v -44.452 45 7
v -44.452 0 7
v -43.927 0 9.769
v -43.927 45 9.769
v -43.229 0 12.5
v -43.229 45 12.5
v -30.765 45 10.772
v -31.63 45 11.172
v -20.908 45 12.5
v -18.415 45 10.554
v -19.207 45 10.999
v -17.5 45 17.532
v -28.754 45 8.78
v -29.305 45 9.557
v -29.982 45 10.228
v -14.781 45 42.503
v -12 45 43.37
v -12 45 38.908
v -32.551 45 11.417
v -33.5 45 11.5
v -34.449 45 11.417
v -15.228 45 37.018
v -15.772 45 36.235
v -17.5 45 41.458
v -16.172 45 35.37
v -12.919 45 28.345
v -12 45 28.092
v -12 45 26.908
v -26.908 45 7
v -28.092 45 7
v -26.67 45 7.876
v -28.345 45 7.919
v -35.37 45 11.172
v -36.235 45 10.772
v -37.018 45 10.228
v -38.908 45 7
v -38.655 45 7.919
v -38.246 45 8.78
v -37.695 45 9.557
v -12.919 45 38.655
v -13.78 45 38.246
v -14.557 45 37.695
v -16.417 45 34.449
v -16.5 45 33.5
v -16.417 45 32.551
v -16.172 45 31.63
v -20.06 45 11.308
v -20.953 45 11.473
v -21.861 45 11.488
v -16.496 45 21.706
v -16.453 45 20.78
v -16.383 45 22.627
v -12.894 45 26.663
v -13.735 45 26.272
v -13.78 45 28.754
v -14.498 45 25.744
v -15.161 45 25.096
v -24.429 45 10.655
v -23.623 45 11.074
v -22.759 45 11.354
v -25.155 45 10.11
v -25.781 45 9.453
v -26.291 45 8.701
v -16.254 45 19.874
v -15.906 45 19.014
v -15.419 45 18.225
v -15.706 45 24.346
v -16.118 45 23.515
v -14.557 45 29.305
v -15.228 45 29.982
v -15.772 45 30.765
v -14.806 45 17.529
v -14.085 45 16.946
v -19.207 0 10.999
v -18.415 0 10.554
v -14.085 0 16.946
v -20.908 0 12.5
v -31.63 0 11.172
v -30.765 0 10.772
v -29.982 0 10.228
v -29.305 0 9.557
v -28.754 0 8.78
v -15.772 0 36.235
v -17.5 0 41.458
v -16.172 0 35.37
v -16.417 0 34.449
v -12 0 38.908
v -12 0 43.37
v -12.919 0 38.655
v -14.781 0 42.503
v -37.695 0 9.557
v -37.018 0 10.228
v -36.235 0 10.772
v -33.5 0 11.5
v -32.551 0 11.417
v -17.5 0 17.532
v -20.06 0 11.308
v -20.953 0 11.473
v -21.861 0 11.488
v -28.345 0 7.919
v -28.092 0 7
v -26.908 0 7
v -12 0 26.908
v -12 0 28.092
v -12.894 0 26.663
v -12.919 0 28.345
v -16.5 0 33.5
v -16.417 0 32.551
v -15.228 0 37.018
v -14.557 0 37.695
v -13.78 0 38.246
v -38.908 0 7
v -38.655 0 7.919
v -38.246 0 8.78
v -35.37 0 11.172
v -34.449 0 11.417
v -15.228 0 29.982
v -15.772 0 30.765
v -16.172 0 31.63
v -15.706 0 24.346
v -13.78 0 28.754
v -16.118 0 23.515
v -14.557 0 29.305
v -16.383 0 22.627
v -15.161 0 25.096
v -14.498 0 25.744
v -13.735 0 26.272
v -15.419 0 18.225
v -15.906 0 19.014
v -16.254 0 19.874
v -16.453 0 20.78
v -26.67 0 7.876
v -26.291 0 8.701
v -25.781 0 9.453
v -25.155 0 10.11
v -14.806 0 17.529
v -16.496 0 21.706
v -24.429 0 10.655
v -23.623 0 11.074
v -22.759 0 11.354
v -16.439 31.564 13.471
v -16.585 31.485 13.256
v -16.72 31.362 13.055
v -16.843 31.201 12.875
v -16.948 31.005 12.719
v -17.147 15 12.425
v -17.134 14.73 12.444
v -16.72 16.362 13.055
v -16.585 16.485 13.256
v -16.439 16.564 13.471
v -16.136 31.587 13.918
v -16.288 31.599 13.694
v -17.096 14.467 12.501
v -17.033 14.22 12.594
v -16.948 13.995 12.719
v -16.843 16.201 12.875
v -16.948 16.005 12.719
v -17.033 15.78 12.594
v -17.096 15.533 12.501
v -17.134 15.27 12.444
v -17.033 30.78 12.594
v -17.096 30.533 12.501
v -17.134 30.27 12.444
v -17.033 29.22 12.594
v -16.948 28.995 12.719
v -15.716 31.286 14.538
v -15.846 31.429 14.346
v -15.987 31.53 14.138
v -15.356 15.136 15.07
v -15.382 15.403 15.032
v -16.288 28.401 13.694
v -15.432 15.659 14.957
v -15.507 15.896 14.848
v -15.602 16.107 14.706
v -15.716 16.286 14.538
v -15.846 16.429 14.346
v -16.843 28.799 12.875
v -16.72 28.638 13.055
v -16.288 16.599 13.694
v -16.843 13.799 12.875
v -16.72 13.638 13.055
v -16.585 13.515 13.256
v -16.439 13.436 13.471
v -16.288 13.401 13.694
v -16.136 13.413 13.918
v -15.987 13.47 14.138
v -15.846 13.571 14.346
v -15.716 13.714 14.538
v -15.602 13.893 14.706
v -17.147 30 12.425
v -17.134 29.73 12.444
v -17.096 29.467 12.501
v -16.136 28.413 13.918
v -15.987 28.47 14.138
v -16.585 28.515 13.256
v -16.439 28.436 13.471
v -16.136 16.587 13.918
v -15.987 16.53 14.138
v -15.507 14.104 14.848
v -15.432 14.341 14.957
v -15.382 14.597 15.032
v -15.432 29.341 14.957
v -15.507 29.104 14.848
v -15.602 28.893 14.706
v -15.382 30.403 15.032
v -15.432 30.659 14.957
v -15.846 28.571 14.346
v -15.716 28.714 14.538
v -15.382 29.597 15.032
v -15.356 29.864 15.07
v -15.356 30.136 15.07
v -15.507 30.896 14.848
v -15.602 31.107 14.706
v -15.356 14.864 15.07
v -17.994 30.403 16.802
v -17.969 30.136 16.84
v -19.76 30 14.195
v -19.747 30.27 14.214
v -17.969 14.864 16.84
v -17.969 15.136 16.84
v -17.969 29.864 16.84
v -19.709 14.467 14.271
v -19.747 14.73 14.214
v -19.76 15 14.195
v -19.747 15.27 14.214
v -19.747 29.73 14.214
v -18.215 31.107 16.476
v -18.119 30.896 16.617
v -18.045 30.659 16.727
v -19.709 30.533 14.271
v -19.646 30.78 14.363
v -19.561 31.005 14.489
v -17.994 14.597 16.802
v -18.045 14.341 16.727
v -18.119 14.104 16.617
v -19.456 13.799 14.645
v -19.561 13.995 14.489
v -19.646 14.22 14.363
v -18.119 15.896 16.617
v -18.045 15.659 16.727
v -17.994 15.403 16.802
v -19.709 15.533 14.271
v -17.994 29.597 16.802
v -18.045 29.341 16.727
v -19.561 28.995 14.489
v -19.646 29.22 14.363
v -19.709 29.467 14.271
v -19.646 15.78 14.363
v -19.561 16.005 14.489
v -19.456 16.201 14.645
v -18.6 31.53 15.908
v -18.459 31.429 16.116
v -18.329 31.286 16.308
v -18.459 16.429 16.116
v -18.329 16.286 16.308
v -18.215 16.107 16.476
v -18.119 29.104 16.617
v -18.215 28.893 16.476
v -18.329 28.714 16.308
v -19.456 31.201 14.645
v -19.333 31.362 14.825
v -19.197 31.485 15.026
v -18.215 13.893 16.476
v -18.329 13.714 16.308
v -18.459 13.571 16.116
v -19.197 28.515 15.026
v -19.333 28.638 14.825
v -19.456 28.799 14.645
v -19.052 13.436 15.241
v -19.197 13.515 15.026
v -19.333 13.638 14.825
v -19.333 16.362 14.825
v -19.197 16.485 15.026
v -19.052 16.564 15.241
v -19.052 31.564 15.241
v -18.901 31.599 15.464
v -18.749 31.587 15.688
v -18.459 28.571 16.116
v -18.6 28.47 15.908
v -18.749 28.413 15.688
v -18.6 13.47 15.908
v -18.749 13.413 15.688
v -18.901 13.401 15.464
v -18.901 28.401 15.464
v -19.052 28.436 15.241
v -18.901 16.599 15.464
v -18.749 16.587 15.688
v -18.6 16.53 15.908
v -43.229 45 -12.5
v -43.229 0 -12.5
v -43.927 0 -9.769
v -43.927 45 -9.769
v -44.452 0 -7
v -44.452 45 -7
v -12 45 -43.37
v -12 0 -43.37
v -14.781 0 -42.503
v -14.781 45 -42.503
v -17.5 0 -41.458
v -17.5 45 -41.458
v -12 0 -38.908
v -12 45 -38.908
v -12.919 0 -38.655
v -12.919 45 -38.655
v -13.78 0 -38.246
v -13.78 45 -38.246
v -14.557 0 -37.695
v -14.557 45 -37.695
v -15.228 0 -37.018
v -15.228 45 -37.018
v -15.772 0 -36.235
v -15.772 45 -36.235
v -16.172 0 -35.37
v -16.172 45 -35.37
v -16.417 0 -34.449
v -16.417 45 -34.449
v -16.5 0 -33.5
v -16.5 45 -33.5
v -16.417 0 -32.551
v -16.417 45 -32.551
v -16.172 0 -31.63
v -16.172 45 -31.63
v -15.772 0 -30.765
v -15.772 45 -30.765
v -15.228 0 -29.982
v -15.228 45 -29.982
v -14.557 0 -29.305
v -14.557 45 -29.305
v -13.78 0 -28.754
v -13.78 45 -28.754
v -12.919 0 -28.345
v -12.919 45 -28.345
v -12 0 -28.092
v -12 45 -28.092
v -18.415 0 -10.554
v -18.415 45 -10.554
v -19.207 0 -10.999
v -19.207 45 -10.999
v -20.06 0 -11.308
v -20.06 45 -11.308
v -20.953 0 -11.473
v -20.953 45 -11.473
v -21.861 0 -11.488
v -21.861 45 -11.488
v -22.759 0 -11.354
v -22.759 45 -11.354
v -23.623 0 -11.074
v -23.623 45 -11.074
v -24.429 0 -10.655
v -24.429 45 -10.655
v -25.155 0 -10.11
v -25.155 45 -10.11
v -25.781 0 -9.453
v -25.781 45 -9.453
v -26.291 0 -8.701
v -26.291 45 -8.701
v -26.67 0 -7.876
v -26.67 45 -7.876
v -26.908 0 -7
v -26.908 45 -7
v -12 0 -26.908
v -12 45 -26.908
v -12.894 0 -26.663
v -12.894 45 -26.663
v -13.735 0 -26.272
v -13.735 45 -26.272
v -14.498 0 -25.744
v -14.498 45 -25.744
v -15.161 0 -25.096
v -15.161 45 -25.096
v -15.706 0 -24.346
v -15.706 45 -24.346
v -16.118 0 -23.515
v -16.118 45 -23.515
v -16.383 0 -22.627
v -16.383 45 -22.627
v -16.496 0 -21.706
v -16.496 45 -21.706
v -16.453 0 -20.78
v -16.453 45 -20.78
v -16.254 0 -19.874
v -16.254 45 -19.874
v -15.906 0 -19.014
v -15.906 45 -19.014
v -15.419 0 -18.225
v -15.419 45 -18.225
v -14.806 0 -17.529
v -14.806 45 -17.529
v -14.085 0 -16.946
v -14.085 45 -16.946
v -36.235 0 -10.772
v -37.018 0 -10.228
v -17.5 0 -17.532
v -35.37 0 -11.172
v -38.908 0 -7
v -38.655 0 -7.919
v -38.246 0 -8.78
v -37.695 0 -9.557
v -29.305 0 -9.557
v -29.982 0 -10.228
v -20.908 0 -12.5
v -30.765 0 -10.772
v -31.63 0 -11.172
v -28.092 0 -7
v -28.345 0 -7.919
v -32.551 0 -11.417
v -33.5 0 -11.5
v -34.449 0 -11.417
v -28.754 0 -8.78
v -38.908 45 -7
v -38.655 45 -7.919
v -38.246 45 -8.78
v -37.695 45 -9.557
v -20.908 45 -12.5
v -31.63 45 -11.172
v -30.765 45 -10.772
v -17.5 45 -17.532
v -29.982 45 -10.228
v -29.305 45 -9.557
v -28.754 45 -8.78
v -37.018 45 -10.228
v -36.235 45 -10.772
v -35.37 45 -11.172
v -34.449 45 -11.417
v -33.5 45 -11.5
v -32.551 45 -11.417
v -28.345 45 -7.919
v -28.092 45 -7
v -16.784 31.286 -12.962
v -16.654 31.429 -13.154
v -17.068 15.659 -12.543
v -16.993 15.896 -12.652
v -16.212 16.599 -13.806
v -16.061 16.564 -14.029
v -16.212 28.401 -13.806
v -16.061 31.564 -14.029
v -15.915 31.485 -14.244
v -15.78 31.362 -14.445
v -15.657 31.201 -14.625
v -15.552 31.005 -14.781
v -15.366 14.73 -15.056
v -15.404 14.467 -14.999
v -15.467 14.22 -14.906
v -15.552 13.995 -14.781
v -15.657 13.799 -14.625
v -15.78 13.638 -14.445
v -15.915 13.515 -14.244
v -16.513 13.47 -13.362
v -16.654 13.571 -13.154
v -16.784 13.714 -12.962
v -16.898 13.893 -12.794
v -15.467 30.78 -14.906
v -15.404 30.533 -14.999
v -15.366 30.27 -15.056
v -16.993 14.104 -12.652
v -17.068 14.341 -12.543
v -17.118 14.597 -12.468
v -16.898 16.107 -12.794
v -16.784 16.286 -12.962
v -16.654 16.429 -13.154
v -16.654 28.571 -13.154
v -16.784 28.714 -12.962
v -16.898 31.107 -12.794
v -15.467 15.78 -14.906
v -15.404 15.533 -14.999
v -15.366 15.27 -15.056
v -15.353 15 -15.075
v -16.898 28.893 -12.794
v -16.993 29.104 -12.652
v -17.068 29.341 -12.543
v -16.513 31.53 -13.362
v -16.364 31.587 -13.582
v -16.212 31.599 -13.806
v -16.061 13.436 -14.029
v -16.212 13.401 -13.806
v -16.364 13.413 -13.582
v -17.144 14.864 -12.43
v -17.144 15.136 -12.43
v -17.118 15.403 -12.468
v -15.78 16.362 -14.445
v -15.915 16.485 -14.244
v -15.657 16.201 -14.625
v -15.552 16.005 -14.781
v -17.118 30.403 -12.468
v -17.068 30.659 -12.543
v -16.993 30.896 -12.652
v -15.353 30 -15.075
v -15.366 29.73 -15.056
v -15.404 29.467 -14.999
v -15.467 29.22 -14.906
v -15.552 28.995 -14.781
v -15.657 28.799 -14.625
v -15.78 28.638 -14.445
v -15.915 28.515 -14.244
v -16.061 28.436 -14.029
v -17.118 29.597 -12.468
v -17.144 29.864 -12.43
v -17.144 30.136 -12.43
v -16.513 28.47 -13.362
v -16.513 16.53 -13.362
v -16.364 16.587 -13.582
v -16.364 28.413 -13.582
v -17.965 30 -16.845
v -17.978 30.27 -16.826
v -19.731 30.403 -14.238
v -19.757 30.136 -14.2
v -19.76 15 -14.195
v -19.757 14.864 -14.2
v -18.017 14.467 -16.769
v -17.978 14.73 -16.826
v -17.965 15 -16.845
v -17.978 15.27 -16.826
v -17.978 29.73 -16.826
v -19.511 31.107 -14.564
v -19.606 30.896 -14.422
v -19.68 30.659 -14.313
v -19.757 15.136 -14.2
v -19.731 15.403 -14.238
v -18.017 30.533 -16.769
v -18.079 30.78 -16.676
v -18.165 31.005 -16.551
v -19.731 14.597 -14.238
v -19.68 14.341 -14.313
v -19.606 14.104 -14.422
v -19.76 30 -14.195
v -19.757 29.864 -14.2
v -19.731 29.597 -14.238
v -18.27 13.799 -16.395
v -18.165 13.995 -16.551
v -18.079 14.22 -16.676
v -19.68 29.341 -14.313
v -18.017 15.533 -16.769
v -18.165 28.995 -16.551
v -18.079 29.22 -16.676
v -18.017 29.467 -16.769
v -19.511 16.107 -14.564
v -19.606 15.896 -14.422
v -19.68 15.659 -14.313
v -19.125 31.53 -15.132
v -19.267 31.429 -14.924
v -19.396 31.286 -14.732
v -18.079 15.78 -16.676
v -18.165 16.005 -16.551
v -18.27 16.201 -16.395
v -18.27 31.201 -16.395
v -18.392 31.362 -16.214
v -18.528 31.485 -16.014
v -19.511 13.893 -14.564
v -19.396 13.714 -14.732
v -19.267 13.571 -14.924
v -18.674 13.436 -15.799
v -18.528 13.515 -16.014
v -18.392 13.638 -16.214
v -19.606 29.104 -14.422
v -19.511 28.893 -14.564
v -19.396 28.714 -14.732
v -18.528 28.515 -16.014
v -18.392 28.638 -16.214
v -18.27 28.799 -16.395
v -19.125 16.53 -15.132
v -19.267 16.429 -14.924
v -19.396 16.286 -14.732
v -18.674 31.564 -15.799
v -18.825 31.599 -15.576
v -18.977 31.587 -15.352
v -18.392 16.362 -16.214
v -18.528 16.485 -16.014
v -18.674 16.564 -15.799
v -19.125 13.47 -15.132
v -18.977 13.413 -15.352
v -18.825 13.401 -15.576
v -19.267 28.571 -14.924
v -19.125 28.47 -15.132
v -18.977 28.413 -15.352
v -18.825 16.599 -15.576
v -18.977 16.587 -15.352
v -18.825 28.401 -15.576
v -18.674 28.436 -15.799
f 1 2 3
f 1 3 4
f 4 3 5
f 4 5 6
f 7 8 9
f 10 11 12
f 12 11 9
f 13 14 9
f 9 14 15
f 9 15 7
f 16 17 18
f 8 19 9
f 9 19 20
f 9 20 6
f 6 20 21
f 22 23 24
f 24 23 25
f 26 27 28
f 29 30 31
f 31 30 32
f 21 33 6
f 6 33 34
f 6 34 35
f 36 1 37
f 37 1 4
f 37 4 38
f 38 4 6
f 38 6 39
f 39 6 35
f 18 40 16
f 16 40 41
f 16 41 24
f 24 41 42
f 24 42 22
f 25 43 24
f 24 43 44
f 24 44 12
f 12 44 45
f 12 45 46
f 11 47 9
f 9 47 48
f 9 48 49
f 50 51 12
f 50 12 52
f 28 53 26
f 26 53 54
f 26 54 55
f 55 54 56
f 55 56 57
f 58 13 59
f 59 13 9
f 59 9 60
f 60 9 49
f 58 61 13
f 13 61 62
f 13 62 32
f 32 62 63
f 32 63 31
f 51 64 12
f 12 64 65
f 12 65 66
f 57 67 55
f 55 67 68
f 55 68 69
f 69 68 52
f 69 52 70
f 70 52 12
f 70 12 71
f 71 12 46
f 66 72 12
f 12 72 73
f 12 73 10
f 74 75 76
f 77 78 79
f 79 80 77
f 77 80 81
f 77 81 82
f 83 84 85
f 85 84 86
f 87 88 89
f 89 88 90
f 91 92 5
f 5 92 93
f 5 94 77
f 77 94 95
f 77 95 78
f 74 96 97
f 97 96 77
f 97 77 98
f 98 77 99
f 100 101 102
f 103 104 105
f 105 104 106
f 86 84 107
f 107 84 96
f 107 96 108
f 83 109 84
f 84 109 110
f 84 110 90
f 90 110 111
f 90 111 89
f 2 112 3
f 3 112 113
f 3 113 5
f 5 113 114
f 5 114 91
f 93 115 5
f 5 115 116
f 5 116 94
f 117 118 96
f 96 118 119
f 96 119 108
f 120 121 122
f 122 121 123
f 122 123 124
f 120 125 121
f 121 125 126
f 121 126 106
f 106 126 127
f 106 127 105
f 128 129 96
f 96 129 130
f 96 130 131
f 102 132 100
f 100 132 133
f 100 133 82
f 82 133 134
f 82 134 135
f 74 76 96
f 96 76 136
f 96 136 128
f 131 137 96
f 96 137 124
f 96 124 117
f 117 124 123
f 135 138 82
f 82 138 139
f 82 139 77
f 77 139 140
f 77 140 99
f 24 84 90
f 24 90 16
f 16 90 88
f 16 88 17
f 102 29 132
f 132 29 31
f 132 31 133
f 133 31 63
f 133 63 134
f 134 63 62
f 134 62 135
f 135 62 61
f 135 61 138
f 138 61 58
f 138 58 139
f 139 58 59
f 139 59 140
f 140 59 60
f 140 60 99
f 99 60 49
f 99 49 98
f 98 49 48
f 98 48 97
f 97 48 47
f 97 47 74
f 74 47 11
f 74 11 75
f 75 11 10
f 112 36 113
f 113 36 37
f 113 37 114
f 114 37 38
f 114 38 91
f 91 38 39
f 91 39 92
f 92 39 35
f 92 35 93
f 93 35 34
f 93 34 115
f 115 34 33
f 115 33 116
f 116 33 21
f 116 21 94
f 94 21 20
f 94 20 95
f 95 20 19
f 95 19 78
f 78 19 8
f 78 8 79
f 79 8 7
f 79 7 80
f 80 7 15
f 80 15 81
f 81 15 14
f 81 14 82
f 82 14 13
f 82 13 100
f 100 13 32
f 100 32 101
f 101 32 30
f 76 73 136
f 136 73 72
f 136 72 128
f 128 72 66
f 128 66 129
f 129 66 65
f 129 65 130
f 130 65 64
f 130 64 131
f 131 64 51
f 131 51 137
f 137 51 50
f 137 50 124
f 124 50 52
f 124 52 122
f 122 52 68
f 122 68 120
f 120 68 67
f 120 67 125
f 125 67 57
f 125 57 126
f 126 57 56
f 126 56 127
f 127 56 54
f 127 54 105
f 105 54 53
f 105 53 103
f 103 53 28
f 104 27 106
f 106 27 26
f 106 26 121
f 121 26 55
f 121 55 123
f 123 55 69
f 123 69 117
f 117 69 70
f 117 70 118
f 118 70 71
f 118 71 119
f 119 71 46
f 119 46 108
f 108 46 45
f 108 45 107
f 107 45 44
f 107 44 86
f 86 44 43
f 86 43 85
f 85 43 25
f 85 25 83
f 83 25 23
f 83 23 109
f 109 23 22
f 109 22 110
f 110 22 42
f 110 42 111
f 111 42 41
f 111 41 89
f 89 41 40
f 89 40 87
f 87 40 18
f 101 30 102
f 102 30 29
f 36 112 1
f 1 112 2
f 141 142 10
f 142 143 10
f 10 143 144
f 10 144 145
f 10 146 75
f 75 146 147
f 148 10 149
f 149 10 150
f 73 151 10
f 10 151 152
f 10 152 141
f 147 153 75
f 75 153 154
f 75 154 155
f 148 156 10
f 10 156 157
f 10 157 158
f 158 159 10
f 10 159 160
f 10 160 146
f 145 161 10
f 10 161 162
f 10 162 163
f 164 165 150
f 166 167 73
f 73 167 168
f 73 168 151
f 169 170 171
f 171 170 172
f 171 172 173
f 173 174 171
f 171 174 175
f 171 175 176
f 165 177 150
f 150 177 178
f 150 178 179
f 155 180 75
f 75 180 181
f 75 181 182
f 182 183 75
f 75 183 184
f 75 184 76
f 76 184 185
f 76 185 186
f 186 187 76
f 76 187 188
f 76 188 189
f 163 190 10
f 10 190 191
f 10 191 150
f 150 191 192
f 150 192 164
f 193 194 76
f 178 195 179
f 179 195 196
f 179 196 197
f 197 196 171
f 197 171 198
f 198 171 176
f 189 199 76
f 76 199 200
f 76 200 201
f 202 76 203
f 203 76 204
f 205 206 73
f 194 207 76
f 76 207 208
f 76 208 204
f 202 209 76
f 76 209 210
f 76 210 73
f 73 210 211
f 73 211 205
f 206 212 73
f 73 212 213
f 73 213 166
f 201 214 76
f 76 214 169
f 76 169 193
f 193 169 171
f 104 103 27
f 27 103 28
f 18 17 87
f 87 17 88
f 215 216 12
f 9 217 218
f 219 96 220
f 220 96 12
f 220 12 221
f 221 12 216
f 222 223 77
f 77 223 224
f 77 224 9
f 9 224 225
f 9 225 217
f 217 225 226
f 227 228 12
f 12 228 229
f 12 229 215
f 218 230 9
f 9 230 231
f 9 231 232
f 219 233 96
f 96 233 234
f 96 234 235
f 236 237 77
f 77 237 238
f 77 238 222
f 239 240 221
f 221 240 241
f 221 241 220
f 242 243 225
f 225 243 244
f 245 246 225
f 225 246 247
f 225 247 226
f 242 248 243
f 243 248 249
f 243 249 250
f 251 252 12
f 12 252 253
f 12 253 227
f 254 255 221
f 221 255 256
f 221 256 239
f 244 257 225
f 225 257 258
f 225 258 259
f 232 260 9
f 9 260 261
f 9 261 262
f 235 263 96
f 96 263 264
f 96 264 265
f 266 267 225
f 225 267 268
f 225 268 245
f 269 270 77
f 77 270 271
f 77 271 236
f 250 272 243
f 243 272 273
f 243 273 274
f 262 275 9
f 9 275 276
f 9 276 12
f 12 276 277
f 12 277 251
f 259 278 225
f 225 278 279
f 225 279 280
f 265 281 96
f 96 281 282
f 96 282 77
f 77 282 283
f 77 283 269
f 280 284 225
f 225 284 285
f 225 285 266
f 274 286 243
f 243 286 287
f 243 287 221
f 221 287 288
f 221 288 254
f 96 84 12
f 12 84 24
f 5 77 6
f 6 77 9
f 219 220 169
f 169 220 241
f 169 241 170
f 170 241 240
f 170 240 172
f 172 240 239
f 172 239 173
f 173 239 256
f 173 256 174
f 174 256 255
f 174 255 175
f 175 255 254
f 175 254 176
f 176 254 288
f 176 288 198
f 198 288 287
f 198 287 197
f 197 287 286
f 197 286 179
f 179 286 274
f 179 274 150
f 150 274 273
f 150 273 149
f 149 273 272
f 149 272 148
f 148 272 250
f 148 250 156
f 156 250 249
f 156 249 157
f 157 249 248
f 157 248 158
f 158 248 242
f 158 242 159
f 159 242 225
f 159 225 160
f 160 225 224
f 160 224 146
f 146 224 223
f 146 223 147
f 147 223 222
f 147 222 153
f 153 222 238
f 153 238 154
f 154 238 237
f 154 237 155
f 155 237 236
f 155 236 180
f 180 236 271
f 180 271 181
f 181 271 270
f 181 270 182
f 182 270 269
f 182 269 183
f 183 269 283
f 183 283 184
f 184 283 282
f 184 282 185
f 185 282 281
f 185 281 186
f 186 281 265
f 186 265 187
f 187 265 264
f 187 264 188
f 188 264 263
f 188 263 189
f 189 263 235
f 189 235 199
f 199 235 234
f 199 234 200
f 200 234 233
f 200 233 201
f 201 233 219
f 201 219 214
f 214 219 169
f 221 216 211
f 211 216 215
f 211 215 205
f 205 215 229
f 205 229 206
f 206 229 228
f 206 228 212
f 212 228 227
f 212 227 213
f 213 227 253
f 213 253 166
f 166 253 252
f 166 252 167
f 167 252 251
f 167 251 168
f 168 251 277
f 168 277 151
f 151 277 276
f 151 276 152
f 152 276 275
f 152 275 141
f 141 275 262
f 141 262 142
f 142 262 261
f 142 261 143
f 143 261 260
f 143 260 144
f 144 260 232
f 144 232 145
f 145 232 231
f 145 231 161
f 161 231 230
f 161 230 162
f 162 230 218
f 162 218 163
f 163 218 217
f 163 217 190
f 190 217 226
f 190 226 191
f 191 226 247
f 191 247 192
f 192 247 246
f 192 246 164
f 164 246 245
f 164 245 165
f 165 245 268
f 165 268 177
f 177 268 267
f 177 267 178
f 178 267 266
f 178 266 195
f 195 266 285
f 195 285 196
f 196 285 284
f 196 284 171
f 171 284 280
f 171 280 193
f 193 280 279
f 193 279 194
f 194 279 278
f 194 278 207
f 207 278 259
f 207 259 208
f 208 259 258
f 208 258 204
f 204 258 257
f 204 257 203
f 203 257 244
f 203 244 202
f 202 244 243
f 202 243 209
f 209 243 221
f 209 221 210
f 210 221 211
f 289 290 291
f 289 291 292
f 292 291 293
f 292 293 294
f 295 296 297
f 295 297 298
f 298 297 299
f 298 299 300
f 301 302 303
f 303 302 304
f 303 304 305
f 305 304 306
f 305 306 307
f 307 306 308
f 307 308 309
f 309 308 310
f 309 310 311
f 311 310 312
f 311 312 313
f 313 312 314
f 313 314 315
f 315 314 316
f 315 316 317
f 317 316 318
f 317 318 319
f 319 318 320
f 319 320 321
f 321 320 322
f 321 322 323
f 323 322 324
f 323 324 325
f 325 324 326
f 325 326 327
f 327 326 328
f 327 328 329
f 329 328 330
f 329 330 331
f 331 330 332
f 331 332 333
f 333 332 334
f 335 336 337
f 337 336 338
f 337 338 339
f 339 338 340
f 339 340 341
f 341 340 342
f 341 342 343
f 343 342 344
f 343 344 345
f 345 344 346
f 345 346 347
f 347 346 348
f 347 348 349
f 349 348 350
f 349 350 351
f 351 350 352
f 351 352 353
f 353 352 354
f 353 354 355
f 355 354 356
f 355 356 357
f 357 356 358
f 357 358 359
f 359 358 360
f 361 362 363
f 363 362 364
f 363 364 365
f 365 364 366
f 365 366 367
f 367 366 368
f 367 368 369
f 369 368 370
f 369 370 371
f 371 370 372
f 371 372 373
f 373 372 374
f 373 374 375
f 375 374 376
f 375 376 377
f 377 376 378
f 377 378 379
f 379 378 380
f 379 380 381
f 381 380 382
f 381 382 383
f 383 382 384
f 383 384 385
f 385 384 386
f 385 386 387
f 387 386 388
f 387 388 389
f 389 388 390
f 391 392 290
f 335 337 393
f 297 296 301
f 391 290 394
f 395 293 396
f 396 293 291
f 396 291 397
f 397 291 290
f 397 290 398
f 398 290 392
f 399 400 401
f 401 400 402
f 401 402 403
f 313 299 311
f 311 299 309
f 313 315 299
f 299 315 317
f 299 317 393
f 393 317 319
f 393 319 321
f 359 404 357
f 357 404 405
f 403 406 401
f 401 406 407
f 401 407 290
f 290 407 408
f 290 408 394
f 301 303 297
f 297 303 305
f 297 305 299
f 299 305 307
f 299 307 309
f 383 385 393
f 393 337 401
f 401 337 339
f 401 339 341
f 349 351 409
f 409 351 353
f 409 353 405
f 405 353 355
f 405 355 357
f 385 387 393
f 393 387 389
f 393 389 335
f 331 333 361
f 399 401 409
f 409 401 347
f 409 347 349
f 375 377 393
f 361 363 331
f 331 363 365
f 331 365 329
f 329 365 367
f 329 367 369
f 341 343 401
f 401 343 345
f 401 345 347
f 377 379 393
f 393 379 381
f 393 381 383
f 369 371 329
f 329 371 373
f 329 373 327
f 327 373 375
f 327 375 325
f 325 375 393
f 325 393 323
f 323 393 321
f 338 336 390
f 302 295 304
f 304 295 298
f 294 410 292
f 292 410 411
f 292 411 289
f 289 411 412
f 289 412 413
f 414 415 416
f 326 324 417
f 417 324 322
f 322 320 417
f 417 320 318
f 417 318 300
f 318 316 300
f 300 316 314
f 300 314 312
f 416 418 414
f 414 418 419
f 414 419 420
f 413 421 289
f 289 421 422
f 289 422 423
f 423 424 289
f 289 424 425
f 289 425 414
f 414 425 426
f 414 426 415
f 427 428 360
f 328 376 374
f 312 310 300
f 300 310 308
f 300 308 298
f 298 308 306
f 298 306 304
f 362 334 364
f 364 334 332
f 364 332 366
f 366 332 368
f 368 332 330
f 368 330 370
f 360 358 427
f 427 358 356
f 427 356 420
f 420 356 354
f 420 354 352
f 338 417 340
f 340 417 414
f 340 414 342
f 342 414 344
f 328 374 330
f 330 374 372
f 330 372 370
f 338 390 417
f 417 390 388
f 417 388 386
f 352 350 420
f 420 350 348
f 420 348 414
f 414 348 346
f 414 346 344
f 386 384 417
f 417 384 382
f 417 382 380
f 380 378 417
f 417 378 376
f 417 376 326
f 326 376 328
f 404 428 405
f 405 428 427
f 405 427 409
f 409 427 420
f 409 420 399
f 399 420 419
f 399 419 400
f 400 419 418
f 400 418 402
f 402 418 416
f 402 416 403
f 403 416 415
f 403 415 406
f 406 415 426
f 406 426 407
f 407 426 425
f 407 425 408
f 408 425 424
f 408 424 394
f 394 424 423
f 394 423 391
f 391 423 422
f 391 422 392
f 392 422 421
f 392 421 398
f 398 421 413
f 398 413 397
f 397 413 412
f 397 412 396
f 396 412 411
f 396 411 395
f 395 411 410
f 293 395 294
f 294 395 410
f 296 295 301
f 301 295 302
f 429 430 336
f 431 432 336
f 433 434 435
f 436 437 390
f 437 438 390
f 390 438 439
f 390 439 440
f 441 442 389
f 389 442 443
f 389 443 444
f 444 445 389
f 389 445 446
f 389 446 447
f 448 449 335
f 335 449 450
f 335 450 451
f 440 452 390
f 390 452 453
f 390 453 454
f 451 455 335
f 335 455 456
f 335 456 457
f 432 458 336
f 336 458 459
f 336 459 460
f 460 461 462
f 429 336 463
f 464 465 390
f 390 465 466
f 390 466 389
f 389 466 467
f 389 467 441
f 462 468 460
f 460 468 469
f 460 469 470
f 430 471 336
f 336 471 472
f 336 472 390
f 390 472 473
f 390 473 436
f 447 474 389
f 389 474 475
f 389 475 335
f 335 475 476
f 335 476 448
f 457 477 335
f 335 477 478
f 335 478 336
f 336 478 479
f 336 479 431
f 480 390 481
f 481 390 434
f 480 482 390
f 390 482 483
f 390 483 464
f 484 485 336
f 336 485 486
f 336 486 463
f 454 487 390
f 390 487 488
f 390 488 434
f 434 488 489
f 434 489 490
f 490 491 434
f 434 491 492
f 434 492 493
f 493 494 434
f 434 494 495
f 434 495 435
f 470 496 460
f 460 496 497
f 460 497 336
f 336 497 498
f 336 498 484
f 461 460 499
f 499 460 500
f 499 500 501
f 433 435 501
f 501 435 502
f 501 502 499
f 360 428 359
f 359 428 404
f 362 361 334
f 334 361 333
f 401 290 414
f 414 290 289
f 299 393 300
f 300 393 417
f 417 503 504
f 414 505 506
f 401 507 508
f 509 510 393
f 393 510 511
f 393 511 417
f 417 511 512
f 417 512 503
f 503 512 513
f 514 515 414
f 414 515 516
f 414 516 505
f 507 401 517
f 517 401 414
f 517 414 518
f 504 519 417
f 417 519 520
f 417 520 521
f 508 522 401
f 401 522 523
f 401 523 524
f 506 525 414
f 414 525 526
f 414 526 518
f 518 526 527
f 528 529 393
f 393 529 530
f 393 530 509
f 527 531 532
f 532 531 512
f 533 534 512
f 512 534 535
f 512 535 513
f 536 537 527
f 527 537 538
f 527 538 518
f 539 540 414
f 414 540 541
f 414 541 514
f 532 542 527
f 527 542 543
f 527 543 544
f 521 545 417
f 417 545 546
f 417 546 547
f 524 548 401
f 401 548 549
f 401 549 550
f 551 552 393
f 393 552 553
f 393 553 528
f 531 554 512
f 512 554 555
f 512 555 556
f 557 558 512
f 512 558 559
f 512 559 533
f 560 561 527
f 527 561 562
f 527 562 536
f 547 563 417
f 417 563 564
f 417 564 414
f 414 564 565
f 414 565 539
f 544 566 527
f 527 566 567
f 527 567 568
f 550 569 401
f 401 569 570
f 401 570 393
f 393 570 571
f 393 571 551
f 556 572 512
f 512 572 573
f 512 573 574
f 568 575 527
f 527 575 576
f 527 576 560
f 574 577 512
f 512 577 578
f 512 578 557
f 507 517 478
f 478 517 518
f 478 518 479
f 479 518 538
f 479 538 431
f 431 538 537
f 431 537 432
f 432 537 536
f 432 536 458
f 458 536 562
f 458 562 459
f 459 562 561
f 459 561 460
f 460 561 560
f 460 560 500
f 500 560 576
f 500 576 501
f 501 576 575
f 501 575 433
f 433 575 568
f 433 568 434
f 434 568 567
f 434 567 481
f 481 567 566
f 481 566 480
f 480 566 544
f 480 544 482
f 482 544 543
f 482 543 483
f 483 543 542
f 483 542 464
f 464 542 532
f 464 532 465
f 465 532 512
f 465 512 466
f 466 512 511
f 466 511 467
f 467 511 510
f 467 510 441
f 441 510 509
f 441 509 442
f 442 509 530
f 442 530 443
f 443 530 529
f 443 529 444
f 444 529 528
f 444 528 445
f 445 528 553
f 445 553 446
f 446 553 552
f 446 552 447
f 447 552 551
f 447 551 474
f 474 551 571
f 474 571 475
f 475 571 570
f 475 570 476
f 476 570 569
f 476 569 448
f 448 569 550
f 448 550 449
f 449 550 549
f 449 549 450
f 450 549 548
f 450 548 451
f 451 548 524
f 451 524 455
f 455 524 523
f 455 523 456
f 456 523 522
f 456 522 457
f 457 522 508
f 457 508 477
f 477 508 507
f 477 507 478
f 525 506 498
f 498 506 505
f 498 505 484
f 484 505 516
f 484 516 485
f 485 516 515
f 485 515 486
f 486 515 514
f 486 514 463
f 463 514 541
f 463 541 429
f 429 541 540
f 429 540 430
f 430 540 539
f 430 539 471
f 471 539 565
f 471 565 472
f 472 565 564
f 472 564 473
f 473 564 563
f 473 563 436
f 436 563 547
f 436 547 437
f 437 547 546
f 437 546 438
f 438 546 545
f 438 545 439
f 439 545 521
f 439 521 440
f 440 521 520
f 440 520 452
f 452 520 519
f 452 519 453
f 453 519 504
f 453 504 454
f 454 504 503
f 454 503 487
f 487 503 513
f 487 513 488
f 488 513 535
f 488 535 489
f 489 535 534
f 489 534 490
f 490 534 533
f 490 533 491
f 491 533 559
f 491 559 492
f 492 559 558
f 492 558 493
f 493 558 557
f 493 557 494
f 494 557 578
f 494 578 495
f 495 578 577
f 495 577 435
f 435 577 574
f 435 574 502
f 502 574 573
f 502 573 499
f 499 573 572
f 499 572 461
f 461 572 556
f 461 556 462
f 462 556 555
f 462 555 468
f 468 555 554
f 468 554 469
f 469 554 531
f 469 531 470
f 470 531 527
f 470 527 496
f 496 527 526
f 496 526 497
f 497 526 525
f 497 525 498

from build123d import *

# Parameters (mm, degrees)
BOSS_EXTRUDE2_DEPTH = 45
SKETCH2_R           = 5.5
CUT_EXTRUDE1_DEPTH  = 45
SKETCH3_W           = 11
SKETCH3_H           = 6
CUT_EXTRUDE2_DEPTH  = 45
SKETCH4_W           = 1
SKETCH4_H           = 1
CUT_EXTRUDE3_DEPTH  = 45
CUT_EXTRUDE4_DEPTH  = 45
SKETCH8_R           = 1.6
CUT_EXTRUDE5_DEPTH  = 45
SKETCH9_R           = 1.6
CUT_EXTRUDE6_DEPTH  = 45


with BuildPart() as part:
    # Sketch1 → Boss-Extrude2 (new body)
    with BuildSketch(Plane(origin=(0, 0, 0), x_dir=(1, 0, 0), z_dir=(0, 1, 0))):
        with BuildLine():
            Line((0, -45), (0, 45))
            ThreePointArc((0, 45), (-45, 0), (0, -45))
        make_face()
    extrude(amount=BOSS_EXTRUDE2_DEPTH)

    # Sketch2 → Cut-Extrude1 (cut)
    with BuildSketch(Plane(origin=(0, 45, 0), x_dir=(1, 0, 0), z_dir=(0, 1, 0))):
        with Locations(Location((-11, -21.5, 0), (0, 0, 270))):
            Circle(SKETCH2_R)
        with Locations(Location((-11, -33.5, 0), (0, 0, 270))):
            Circle(SKETCH2_R)
        with Locations(Location((-21.5, -6, 0), (0, 0, 270))):
            Circle(SKETCH2_R)
        with Locations(Location((-33.5, -6, 0), (0, 0, 270))):
            Circle(SKETCH2_R)
        with Locations(Location((-11, 33.5, 0), (0, 0, 270))):
            Circle(SKETCH2_R)
        with Locations(Location((-11, 21.5, 0), (0, 0, 270))):
            Circle(SKETCH2_R)
        with Locations(Location((-21.5, 6, 0), (0, 0, 270))):
            Circle(SKETCH2_R)
        with Locations(Location((-33.5, 6, 0), (0, 0, 270))):
            Circle(SKETCH2_R)
    extrude(amount=-CUT_EXTRUDE1_DEPTH, mode=Mode.SUBTRACT)

    # Sketch3 → Cut-Extrude2 (cut)
    with BuildSketch(Plane(origin=(0, 45, 0), x_dir=(1, 0, 0), z_dir=(0, 1, 0))):
        with BuildLine():
            Line((-11, 6), (0, 6))
            Line((0, 6), (0, 45))
            ThreePointArc((0, 45), (-5.54219358, 44.657408012), (-11, 43.634848459))
            Line((-11, 43.634848459), (-11, 39))
            ThreePointArc((-11, 39), (-7.110912703, 37.389087297), (-5.5, 33.5))
            ThreePointArc((-5.5, 33.5), (-7.110912703, 29.610912703), (-11, 28))
            Line((-11, 28), (-11, 27))
            ThreePointArc((-11, 27), (-7.110912703, 25.389087297), (-5.5, 21.5))
            ThreePointArc((-5.5, 21.5), (-7.110912703, 17.610912703), (-11, 16))
            Line((-11, 16), (-11, 6))
        make_face()
        with BuildLine():
            Line((0, -45), (0, -6))
            Line((0, -6), (-11, -6))
            Line((-11, -6), (-11, -16))
            ThreePointArc((-11, -16), (-7.110912703, -17.610912703), (-5.5, -21.5))
            ThreePointArc((-5.5, -21.5), (-7.110912703, -25.389087297), (-11, -27))
            Line((-11, -27), (-11, -28))
            ThreePointArc((-11, -28), (-7.110912703, -29.610912703), (-5.5, -33.5))
            ThreePointArc((-5.5, -33.5), (-7.110912703, -37.389087297), (-11, -39))
            Line((-11, -39), (-11, -43.634848459))
            ThreePointArc((-11, -43.634848459), (-5.54219358, -44.657408012), (0, -45))
        make_face()
        with BuildLine():
            Line((-11, -6), (-11, 0))
            Line((-11, 0), (-45, 0))
            ThreePointArc((-45, 0), (-44.8994392, -3.006719068), (-44.598206242, -6))
            Line((-44.598206242, -6), (-39, -6))
            ThreePointArc((-39, -6), (-33.5, -0.5), (-28, -6))
            Line((-28, -6), (-27, -6))
            ThreePointArc((-27, -6), (-21.5, -0.5), (-16, -6))
            Line((-16, -6), (-11, -6))
        make_face()
        with BuildLine():
            Line((-45, 0), (-11, 0))
            Line((-11, 0), (-11, 6))
            Line((-11, 6), (-16, 6))
            ThreePointArc((-16, 6), (-21.5, 0.5), (-27, 6))
            Line((-27, 6), (-28, 6))
            ThreePointArc((-28, 6), (-33.5, 0.5), (-39, 6))
            Line((-39, 6), (-44.598206242, 6))
            ThreePointArc((-44.598206242, 6), (-44.8994392, 3.006719068), (-45, 0))
        make_face()
        with Locations((-5.5, 3)):
            Rectangle(SKETCH3_W, SKETCH3_H)
        with Locations((-5.5, -3)):
            Rectangle(SKETCH3_W, SKETCH3_H)
    extrude(amount=-CUT_EXTRUDE2_DEPTH, mode=Mode.SUBTRACT)


with BuildPart() as cut_extrude2_piece_1:
    # of the separate pieces the step leaves, piece 1, a body of its own (cut_extrude2_pieces)
    add(part.part.solids().sort_by_distance((-44.598206242, 0, 6))[0])


with BuildPart() as cut_extrude2_piece_2:
    # of the separate pieces the step leaves, piece 2, a body of its own (cut_extrude2_pieces)
    add(part.part.solids().sort_by_distance((-11, 0, -43.634848459))[0])


with BuildPart() as cut_extrude3_tool:
    # Sketch4 → Cut-Extrude3 (new body)
    with BuildSketch(Plane(origin=(0, 45, 0), x_dir=(1, 0, 0), z_dir=(0, 1, 0))):
        Polygon((-48.017715624, 6), (-21.5, 6), (-20.822580645, 7), (-48.017715624, 7), align=None)
        Polygon((-20.822580645, 7), (-21.5, 6), (-12, 6), (-12, 7), align=None)
        Polygon((-12, 20.023809524), (-20.822580645, 7), (-12, 7), align=None)
        with Locations((-11.5, 6.5)):
            Rectangle(SKETCH4_W, SKETCH4_H)
        Polygon((-12, 46.611751928), (-12, 20.023809524), (-11, 21.5), (-11, 46.611751928), align=None)
        Polygon((-11, 21.5), (-12, 20.023809524), (-12, 7), (-11, 7), align=None)
        Polygon((-12, -46.611751928), (-11, -46.611751928), (-11, -21.5), (-12, -20.023809524), align=None)
        Polygon((-12, -20.023809524), (-11, -21.5), (-11, -7), (-12, -7), align=None)
        Polygon((-20.822580645, -7), (-12, -20.023809524), (-12, -7), align=None)
        with Locations((-11.5, -6.5)):
            Rectangle(SKETCH4_W, SKETCH4_H)
        Polygon((-20.822580645, -7), (-12, -7), (-12, -6), (-21.5, -6), align=None)
        Polygon((-48.017715624, -7), (-20.822580645, -7), (-21.5, -6), (-48.017715624, -6), align=None)
    extrude(amount=-CUT_EXTRUDE3_DEPTH)


with BuildPart() as cut_extrude2_piece_1_1:
    add(cut_extrude2_piece_1.part)

    # Cut-Extrude3: cut by cut_extrude3_tool
    add(cut_extrude3_tool.part, mode=Mode.SUBTRACT)


with BuildPart() as cut_extrude2_piece_2_1:
    add(cut_extrude2_piece_2.part)

    # Cut-Extrude3: cut by cut_extrude3_tool
    add(cut_extrude3_tool.part, mode=Mode.SUBTRACT)


with BuildPart() as cut_extrude4_tool:
    # Sketch5 → Cut-Extrude4 (new body)
    with BuildSketch(Plane(origin=(0, 45, 0), x_dir=(1, 0, 0), z_dir=(0, 1, 0))):
        Polygon((-43.229041164, 12.5), (-20.908343915, 12.5), (-17.5, 17.531517582), (-17.5, 41.457809879), (-43.229041164, 41.457809879), align=None)
        Polygon((-20.908343915, -12.5), (-43.229041164, -12.5), (-43.229041164, -41.457809879), (-17.5, -41.457809879), (-17.5, -17.531517582), align=None)
    extrude(amount=-CUT_EXTRUDE4_DEPTH)


with BuildPart() as cut_extrude2_piece_1_2:
    add(cut_extrude2_piece_1_1.part)

    # Cut-Extrude4: cut by cut_extrude4_tool
    add(cut_extrude4_tool.part, mode=Mode.SUBTRACT)

    # Sketch8 → Cut-Extrude5 (cut)
    with BuildSketch(Plane(origin=(-17.52318117, 0, 11.870542083), x_dir=(-0.5608481451695153, 0, -0.827918690488332), z_dir=(0.827918690488332, 0, -0.5608481451695153))):
        with Locations((-2.270099635, 15)):
            Circle(SKETCH8_R)
        with Locations((-2.270099635, 30)):
            Circle(SKETCH8_R)
    extrude(amount=-CUT_EXTRUDE5_DEPTH, mode=Mode.SUBTRACT)


with BuildPart() as cut_extrude2_piece_2_2:
    add(cut_extrude2_piece_2_1.part)

    # Cut-Extrude4: cut by cut_extrude4_tool
    add(cut_extrude4_tool.part, mode=Mode.SUBTRACT)

    # Sketch9 → Cut-Extrude6 (cut)
    with BuildSketch(Plane(origin=(-17.52318117, 0, -11.870542083), x_dir=(0.5608481451695153, 0, -0.827918690488332), z_dir=(0.827918690488332, 0, 0.5608481451695153))):
        with Locations((2.270099635, 30)):
            Circle(SKETCH9_R)
        with Locations((2.270099635, 15)):
            Circle(SKETCH9_R)
    extrude(amount=-CUT_EXTRUDE6_DEPTH, mode=Mode.SUBTRACT)


solid = Compound([cut_extrude2_piece_1_2.part, cut_extrude2_piece_2_2.part])
